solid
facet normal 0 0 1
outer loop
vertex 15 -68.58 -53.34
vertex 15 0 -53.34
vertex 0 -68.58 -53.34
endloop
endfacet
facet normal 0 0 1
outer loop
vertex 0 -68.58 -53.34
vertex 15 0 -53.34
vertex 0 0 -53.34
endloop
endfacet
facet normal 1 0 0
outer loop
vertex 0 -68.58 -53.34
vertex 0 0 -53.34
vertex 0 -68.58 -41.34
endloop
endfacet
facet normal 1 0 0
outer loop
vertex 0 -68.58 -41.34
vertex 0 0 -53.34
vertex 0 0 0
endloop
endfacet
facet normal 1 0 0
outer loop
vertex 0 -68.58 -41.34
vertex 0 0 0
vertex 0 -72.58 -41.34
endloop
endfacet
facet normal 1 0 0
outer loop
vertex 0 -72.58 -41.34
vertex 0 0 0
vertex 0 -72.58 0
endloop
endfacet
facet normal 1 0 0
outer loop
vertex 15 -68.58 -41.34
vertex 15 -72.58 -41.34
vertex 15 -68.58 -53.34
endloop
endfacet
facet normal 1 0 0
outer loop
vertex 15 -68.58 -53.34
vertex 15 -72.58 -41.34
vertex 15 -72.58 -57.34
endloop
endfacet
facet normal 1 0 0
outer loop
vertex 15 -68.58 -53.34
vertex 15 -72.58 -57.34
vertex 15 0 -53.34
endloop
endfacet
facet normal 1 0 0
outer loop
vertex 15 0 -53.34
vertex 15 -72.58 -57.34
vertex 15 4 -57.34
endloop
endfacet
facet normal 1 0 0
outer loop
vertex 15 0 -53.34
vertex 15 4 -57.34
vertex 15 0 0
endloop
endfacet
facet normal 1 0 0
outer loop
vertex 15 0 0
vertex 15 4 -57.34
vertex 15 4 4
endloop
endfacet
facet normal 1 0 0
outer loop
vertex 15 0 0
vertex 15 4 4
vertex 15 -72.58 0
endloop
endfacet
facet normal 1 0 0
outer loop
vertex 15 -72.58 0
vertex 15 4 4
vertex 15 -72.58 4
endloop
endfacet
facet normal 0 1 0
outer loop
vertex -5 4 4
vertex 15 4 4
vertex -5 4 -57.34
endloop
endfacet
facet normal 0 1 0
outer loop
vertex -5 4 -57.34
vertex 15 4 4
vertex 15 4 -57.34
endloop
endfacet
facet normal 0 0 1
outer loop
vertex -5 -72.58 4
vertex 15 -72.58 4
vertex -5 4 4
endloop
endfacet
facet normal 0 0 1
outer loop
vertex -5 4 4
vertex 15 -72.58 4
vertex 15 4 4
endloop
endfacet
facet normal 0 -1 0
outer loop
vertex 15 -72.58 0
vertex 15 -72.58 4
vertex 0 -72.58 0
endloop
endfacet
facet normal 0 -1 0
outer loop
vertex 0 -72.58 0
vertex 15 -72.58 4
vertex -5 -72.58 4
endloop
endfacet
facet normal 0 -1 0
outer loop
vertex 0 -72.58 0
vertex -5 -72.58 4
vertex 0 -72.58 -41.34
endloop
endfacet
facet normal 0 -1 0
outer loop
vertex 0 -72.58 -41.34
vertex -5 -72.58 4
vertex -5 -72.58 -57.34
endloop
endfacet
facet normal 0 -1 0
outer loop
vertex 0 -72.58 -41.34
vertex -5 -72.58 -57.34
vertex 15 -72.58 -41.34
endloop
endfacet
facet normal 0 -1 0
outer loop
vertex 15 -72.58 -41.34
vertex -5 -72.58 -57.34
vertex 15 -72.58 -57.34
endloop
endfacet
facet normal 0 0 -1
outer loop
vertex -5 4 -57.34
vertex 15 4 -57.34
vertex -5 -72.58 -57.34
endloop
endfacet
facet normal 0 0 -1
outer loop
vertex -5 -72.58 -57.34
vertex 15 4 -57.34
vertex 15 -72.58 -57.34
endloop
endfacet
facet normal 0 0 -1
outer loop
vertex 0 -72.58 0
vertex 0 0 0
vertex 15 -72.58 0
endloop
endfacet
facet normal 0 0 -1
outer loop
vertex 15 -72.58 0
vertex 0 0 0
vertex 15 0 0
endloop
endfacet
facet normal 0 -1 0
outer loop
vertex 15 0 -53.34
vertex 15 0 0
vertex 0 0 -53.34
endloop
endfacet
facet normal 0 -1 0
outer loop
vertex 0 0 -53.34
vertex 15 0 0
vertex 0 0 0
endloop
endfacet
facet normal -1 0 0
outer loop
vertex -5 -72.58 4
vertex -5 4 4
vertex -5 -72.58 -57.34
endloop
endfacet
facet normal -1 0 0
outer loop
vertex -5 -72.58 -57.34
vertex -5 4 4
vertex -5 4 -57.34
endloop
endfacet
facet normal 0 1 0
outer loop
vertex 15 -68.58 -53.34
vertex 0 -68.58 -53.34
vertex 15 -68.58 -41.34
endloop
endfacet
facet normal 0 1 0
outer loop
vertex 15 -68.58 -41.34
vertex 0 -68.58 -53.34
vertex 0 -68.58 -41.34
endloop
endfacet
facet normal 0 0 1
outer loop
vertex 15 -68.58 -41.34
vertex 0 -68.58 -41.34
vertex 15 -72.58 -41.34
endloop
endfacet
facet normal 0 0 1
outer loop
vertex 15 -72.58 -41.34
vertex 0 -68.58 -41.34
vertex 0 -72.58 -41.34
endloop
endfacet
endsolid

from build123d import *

# Parameters (mm, degrees)
SKETCH1_W           = 61.34
SKETCH1_H           = 76.58
SKETCH1_W_2         = 53.34
SKETCH1_H_2         = 68.58
BOSS_EXTRUDE1_DEPTH = 15
SKETCH2_W           = 61.34
SKETCH2_H           = 76.58
BOSS_EXTRUDE2_DEPTH = 5
SKETCH4_W           = 19.05
SKETCH4_H           = 53.34
CUT_EXTRUDE2_DEPTH  = 21
SKETCH5_W           = 12
SKETCH5_H           = 4
BOSS_EXTRUDE3_DEPTH = 15


with BuildPart() as part:
    # Sketch1 → Boss-Extrude1 (new body)
    with BuildSketch(Plane(origin=(0, 0, 0), x_dir=(0, 0, -1), z_dir=(1, 0, 0))):
        with Locations((26.67, -34.29)):
            Rectangle(SKETCH1_W, SKETCH1_H)
        with Locations((26.67, -34.29)):
            Rectangle(SKETCH1_W_2, SKETCH1_H_2, mode=Mode.SUBTRACT)
    extrude(amount=BOSS_EXTRUDE1_DEPTH)

    # Sketch2 → Boss-Extrude2 (add)
    with BuildSketch(Plane.ZY):
        with Locations((-26.67, -34.29)):
            Rectangle(SKETCH2_W, SKETCH2_H)
    extrude(amount=BOSS_EXTRUDE2_DEPTH)

    # Sketch4 → Cut-Extrude2 (cut)
    with BuildSketch(Plane(origin=(0, -72.58, 0), x_dir=(-1, 0, 0), z_dir=(0, -1, 0))):
        with Locations((-9.525, 26.67)):
            Rectangle(SKETCH4_W, SKETCH4_H)
    extrude(amount=-CUT_EXTRUDE2_DEPTH, mode=Mode.SUBTRACT)

    # Sketch5 → Boss-Extrude3 (add)
    with BuildSketch(Plane(origin=(0, 0, 0), x_dir=(0, 0, -1), z_dir=(1, 0, 0))):
        with Locations((47.34, -70.58)):
            Rectangle(SKETCH5_W, SKETCH5_H)
    extrude(amount=BOSS_EXTRUDE3_DEPTH)


solid = part.part
